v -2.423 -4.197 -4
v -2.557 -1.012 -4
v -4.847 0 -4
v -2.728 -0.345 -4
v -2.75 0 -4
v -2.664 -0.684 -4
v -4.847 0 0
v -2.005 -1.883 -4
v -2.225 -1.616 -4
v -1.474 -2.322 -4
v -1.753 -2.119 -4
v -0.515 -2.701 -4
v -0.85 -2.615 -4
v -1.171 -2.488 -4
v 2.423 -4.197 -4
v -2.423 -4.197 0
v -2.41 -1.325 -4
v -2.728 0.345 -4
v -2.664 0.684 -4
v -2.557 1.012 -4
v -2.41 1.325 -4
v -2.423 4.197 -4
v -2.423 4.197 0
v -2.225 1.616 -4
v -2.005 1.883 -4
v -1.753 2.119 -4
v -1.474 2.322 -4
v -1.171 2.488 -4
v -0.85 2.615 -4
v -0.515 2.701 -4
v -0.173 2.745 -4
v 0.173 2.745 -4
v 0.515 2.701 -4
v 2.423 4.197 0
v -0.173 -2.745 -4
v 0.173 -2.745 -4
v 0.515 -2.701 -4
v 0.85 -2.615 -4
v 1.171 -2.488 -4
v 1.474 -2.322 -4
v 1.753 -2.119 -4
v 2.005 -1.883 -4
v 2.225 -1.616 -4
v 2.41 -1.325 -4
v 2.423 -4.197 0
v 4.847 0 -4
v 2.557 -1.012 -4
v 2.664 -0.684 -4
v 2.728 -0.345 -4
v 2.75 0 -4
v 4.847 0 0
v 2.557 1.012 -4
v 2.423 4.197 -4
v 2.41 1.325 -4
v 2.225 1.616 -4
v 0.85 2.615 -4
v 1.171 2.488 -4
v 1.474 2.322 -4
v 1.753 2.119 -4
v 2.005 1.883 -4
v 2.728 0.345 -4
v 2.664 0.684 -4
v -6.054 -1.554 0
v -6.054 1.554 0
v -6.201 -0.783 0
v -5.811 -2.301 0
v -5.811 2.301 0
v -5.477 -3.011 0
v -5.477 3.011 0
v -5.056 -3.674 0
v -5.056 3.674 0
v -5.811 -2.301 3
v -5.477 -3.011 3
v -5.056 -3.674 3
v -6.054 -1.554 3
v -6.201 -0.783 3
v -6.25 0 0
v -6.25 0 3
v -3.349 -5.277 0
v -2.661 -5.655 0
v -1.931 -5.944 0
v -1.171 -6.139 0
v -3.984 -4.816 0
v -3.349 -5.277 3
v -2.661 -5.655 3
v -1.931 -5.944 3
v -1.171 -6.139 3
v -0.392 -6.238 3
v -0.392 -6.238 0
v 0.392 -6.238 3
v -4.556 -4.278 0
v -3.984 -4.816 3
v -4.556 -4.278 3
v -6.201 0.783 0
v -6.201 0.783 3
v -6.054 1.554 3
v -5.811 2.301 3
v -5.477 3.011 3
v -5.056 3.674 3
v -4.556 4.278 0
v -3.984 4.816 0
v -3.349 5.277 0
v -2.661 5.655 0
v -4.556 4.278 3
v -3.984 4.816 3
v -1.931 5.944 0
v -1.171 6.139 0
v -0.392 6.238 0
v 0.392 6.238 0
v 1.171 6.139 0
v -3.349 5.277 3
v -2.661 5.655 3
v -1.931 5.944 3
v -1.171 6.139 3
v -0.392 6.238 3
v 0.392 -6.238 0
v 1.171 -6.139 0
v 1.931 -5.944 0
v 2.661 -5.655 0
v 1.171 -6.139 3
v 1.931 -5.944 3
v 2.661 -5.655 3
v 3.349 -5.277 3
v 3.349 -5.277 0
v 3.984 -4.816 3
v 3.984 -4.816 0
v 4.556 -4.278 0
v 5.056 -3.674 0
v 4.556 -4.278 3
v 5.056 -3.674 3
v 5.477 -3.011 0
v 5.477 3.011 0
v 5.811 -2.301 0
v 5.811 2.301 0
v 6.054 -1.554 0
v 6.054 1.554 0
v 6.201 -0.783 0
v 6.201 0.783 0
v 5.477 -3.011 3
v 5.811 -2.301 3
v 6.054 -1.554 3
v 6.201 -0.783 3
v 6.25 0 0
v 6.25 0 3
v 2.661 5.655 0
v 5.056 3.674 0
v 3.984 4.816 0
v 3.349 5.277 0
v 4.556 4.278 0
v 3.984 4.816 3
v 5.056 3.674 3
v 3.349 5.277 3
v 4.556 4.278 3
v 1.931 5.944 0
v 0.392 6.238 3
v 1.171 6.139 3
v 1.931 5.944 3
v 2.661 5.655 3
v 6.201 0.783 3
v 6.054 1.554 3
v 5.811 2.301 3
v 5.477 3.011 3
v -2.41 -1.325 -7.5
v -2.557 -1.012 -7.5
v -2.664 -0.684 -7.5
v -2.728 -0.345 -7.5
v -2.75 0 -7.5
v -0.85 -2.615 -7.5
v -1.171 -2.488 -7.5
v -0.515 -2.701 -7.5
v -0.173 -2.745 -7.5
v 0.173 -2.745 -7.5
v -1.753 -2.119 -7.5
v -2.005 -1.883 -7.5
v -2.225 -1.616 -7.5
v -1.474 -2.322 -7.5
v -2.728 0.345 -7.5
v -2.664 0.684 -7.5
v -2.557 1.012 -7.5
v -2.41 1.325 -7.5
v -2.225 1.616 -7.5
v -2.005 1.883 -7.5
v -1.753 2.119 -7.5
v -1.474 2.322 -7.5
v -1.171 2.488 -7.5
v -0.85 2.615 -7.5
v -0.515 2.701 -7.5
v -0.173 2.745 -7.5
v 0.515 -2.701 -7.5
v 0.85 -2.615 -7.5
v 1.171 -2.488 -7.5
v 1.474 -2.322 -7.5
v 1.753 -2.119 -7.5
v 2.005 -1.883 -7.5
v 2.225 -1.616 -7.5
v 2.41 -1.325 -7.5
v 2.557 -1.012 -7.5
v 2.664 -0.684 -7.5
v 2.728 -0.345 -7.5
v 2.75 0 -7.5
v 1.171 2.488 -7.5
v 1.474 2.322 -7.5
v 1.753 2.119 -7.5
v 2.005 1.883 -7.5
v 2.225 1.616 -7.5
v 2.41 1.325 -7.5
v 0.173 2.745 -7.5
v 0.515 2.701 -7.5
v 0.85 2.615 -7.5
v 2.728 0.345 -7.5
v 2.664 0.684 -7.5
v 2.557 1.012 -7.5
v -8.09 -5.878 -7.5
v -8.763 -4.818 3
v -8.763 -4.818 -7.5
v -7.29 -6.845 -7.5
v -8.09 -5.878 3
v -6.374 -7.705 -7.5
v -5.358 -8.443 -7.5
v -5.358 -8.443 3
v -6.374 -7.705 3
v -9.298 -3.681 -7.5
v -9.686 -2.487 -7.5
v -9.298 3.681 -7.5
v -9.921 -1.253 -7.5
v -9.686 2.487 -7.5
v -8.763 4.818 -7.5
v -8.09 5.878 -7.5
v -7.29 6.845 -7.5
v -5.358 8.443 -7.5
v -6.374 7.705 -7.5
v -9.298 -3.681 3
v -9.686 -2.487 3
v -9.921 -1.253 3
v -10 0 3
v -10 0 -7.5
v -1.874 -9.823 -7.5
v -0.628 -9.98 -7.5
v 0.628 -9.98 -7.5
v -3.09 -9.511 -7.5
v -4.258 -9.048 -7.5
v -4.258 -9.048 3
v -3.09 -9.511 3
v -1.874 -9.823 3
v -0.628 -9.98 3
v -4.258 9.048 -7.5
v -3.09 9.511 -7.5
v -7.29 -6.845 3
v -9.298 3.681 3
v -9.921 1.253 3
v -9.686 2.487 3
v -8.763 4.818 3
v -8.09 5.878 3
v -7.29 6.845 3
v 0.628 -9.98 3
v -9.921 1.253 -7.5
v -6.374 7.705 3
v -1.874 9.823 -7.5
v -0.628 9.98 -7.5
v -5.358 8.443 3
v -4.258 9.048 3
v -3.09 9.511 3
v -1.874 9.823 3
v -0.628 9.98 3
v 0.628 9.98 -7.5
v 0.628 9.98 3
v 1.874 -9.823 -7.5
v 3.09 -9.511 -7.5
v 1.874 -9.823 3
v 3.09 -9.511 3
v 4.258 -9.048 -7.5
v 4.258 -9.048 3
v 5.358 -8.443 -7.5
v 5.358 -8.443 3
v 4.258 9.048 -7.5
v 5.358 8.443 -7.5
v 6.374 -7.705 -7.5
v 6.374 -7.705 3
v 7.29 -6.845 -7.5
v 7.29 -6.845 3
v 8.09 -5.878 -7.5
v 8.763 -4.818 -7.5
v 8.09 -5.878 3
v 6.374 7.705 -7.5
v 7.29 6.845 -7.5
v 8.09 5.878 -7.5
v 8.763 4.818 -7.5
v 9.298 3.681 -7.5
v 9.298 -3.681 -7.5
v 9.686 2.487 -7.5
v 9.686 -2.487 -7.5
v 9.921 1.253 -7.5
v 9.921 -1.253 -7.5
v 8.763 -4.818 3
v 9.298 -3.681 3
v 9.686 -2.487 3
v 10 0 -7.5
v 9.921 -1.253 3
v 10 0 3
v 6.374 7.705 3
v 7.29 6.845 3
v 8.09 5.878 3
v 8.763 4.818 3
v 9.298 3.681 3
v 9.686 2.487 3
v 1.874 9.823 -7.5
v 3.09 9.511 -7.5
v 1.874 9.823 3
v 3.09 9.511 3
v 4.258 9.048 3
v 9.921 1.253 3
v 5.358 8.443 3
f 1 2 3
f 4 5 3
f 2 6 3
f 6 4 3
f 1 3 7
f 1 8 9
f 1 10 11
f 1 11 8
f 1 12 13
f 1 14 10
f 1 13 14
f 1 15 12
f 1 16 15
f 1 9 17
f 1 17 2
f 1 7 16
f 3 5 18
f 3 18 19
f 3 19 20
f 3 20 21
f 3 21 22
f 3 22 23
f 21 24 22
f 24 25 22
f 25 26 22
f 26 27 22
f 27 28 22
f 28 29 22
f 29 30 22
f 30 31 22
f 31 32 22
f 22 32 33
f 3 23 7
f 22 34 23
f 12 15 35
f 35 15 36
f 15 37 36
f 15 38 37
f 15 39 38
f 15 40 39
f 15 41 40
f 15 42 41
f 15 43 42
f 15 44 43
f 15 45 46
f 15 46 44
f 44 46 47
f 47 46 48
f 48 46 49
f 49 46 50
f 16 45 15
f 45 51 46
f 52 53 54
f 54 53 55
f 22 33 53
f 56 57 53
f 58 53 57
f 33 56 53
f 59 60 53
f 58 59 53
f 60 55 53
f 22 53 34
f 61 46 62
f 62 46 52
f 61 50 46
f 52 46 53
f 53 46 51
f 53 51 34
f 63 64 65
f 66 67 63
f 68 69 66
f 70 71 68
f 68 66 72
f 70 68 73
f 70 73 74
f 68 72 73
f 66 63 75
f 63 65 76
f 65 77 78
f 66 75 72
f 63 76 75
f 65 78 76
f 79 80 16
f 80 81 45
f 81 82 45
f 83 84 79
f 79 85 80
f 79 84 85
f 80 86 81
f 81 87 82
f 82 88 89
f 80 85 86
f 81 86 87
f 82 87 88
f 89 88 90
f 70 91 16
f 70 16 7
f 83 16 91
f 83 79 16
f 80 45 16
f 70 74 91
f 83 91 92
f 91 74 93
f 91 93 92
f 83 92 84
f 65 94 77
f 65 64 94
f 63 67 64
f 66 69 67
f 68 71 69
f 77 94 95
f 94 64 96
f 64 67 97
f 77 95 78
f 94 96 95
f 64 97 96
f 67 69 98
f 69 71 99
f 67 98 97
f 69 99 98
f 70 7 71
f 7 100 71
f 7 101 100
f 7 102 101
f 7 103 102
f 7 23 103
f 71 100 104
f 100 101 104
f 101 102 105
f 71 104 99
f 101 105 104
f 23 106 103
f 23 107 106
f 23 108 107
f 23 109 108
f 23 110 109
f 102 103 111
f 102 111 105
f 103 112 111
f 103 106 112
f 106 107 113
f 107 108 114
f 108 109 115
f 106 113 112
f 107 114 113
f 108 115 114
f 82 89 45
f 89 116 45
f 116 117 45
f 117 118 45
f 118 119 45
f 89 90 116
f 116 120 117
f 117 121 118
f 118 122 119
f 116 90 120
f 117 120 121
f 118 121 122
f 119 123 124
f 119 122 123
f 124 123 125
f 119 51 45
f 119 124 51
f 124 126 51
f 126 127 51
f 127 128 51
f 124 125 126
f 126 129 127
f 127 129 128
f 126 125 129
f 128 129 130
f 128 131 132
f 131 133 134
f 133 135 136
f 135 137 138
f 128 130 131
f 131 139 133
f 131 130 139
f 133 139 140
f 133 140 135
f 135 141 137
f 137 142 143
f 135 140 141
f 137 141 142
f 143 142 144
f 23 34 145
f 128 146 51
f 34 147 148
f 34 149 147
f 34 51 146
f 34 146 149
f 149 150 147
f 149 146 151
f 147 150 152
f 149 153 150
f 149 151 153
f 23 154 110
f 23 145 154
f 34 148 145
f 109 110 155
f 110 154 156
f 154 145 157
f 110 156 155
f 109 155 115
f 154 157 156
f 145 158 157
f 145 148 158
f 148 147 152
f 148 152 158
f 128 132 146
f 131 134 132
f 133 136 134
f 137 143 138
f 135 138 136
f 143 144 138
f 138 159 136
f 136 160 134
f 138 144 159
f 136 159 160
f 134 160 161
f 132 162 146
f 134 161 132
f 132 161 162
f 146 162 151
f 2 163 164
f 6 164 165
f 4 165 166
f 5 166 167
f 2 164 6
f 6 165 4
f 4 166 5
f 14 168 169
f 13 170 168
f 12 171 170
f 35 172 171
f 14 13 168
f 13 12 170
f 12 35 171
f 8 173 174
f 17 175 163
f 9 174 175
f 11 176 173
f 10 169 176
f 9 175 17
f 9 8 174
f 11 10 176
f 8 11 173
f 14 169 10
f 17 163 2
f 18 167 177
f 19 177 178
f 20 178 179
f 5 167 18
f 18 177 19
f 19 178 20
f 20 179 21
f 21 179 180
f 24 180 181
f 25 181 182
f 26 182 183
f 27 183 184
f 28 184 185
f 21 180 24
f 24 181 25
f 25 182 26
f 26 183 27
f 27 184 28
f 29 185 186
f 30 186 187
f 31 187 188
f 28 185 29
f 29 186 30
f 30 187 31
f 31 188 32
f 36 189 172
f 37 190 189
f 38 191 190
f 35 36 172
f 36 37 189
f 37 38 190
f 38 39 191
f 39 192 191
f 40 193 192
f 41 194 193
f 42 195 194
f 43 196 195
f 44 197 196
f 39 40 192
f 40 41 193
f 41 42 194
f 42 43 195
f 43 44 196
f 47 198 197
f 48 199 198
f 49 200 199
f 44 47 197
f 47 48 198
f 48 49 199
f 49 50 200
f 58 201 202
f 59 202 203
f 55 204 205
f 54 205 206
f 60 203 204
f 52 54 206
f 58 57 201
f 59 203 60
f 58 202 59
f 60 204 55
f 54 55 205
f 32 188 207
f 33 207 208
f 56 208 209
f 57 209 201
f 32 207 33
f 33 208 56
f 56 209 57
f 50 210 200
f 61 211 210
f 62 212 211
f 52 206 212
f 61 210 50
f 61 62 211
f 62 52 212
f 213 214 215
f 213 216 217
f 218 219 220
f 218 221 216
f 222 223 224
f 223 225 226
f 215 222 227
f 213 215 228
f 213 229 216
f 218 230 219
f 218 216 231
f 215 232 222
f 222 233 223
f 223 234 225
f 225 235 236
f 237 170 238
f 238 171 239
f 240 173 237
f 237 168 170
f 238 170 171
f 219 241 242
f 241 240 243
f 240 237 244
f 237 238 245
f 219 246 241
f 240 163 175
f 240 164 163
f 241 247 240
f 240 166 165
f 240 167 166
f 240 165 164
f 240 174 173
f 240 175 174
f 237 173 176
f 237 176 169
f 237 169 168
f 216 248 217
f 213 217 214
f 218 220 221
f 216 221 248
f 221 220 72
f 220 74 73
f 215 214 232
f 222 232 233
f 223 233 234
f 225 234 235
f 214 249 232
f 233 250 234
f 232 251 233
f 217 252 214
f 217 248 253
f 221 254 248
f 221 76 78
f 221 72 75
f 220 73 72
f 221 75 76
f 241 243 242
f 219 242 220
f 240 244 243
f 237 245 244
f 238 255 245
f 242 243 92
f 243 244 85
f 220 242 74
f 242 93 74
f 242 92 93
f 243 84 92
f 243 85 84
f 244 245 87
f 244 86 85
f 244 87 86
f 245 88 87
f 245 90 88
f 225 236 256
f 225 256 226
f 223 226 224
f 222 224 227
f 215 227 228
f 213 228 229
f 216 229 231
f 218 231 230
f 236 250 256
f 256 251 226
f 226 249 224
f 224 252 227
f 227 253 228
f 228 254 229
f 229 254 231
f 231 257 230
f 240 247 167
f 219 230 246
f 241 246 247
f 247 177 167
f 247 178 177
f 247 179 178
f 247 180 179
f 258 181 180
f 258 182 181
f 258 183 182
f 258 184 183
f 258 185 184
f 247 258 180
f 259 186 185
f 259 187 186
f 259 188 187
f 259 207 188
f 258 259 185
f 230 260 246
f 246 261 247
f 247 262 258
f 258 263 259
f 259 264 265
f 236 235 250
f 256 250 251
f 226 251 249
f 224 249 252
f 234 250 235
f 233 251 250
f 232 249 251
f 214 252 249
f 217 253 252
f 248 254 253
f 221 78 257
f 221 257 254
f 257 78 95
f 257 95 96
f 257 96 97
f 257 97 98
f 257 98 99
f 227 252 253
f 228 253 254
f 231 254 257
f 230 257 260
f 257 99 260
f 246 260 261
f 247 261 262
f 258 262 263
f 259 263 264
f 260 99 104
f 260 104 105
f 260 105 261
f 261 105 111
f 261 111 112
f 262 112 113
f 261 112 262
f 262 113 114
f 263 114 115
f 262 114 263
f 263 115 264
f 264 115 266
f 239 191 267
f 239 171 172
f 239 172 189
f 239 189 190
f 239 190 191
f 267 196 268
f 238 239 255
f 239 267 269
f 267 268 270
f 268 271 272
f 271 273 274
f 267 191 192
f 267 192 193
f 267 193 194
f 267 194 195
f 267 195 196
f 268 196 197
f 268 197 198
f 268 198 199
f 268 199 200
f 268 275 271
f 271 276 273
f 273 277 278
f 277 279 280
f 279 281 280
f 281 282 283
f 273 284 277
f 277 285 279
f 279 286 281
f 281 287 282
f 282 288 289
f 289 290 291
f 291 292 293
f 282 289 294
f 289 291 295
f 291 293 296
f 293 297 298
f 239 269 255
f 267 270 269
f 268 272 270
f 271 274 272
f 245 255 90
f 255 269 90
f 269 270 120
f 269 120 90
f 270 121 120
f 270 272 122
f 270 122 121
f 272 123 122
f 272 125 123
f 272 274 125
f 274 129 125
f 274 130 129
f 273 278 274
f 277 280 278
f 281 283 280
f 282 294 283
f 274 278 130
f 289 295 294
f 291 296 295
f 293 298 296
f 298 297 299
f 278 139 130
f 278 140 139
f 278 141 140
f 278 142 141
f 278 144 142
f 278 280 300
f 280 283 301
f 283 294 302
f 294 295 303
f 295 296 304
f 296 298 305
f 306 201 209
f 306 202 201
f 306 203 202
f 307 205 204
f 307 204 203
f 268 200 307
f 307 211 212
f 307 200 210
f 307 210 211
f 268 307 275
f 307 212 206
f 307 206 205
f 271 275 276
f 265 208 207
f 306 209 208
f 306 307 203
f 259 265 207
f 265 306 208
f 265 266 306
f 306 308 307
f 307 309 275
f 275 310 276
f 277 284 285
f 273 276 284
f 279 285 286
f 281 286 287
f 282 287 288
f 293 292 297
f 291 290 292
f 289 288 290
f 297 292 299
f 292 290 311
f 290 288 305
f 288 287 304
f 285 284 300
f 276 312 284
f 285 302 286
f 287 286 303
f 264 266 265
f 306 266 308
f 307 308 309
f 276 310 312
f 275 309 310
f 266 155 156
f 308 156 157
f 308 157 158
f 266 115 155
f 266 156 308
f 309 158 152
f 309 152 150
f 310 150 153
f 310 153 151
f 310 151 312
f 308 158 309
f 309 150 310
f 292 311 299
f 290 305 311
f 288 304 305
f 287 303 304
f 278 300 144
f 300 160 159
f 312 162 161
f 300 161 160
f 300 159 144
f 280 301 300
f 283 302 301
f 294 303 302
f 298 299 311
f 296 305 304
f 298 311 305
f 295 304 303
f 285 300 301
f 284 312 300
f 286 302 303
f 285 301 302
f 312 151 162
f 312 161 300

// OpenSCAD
$fn = 50;

difference() {
	union() {
		translate(v = [0, 0, -7.5]) {
			cylinder(h = 10.5, r = 10.0);
		}
	}
	union() {
		translate(v = [0, 0, 0]) {
			rotate(a = [0, 0, 0]) {
				difference() {
					union() {
						translate(v = [0, 0, -4]) {
							linear_extrude(height = 4) {
								polygon(points = [[4.8468, 0.0], [2.4234000000000004, 4.197451927062417], [-2.423399999999999, 4.197451927062417], [-4.8468, 5.935618106107392e-16], [-2.423400000000002, -4.197451927062416], [2.423399999999997, -4.197451927062419]]);
							}
						}
					}
					union();
				}
			}
		}
		#cylinder(h = 3, r = 6.25);
		#translate(v = [0, 0, -100.0]) {
			cylinder(h = 200, r = 2.75);
		}
	}
}
